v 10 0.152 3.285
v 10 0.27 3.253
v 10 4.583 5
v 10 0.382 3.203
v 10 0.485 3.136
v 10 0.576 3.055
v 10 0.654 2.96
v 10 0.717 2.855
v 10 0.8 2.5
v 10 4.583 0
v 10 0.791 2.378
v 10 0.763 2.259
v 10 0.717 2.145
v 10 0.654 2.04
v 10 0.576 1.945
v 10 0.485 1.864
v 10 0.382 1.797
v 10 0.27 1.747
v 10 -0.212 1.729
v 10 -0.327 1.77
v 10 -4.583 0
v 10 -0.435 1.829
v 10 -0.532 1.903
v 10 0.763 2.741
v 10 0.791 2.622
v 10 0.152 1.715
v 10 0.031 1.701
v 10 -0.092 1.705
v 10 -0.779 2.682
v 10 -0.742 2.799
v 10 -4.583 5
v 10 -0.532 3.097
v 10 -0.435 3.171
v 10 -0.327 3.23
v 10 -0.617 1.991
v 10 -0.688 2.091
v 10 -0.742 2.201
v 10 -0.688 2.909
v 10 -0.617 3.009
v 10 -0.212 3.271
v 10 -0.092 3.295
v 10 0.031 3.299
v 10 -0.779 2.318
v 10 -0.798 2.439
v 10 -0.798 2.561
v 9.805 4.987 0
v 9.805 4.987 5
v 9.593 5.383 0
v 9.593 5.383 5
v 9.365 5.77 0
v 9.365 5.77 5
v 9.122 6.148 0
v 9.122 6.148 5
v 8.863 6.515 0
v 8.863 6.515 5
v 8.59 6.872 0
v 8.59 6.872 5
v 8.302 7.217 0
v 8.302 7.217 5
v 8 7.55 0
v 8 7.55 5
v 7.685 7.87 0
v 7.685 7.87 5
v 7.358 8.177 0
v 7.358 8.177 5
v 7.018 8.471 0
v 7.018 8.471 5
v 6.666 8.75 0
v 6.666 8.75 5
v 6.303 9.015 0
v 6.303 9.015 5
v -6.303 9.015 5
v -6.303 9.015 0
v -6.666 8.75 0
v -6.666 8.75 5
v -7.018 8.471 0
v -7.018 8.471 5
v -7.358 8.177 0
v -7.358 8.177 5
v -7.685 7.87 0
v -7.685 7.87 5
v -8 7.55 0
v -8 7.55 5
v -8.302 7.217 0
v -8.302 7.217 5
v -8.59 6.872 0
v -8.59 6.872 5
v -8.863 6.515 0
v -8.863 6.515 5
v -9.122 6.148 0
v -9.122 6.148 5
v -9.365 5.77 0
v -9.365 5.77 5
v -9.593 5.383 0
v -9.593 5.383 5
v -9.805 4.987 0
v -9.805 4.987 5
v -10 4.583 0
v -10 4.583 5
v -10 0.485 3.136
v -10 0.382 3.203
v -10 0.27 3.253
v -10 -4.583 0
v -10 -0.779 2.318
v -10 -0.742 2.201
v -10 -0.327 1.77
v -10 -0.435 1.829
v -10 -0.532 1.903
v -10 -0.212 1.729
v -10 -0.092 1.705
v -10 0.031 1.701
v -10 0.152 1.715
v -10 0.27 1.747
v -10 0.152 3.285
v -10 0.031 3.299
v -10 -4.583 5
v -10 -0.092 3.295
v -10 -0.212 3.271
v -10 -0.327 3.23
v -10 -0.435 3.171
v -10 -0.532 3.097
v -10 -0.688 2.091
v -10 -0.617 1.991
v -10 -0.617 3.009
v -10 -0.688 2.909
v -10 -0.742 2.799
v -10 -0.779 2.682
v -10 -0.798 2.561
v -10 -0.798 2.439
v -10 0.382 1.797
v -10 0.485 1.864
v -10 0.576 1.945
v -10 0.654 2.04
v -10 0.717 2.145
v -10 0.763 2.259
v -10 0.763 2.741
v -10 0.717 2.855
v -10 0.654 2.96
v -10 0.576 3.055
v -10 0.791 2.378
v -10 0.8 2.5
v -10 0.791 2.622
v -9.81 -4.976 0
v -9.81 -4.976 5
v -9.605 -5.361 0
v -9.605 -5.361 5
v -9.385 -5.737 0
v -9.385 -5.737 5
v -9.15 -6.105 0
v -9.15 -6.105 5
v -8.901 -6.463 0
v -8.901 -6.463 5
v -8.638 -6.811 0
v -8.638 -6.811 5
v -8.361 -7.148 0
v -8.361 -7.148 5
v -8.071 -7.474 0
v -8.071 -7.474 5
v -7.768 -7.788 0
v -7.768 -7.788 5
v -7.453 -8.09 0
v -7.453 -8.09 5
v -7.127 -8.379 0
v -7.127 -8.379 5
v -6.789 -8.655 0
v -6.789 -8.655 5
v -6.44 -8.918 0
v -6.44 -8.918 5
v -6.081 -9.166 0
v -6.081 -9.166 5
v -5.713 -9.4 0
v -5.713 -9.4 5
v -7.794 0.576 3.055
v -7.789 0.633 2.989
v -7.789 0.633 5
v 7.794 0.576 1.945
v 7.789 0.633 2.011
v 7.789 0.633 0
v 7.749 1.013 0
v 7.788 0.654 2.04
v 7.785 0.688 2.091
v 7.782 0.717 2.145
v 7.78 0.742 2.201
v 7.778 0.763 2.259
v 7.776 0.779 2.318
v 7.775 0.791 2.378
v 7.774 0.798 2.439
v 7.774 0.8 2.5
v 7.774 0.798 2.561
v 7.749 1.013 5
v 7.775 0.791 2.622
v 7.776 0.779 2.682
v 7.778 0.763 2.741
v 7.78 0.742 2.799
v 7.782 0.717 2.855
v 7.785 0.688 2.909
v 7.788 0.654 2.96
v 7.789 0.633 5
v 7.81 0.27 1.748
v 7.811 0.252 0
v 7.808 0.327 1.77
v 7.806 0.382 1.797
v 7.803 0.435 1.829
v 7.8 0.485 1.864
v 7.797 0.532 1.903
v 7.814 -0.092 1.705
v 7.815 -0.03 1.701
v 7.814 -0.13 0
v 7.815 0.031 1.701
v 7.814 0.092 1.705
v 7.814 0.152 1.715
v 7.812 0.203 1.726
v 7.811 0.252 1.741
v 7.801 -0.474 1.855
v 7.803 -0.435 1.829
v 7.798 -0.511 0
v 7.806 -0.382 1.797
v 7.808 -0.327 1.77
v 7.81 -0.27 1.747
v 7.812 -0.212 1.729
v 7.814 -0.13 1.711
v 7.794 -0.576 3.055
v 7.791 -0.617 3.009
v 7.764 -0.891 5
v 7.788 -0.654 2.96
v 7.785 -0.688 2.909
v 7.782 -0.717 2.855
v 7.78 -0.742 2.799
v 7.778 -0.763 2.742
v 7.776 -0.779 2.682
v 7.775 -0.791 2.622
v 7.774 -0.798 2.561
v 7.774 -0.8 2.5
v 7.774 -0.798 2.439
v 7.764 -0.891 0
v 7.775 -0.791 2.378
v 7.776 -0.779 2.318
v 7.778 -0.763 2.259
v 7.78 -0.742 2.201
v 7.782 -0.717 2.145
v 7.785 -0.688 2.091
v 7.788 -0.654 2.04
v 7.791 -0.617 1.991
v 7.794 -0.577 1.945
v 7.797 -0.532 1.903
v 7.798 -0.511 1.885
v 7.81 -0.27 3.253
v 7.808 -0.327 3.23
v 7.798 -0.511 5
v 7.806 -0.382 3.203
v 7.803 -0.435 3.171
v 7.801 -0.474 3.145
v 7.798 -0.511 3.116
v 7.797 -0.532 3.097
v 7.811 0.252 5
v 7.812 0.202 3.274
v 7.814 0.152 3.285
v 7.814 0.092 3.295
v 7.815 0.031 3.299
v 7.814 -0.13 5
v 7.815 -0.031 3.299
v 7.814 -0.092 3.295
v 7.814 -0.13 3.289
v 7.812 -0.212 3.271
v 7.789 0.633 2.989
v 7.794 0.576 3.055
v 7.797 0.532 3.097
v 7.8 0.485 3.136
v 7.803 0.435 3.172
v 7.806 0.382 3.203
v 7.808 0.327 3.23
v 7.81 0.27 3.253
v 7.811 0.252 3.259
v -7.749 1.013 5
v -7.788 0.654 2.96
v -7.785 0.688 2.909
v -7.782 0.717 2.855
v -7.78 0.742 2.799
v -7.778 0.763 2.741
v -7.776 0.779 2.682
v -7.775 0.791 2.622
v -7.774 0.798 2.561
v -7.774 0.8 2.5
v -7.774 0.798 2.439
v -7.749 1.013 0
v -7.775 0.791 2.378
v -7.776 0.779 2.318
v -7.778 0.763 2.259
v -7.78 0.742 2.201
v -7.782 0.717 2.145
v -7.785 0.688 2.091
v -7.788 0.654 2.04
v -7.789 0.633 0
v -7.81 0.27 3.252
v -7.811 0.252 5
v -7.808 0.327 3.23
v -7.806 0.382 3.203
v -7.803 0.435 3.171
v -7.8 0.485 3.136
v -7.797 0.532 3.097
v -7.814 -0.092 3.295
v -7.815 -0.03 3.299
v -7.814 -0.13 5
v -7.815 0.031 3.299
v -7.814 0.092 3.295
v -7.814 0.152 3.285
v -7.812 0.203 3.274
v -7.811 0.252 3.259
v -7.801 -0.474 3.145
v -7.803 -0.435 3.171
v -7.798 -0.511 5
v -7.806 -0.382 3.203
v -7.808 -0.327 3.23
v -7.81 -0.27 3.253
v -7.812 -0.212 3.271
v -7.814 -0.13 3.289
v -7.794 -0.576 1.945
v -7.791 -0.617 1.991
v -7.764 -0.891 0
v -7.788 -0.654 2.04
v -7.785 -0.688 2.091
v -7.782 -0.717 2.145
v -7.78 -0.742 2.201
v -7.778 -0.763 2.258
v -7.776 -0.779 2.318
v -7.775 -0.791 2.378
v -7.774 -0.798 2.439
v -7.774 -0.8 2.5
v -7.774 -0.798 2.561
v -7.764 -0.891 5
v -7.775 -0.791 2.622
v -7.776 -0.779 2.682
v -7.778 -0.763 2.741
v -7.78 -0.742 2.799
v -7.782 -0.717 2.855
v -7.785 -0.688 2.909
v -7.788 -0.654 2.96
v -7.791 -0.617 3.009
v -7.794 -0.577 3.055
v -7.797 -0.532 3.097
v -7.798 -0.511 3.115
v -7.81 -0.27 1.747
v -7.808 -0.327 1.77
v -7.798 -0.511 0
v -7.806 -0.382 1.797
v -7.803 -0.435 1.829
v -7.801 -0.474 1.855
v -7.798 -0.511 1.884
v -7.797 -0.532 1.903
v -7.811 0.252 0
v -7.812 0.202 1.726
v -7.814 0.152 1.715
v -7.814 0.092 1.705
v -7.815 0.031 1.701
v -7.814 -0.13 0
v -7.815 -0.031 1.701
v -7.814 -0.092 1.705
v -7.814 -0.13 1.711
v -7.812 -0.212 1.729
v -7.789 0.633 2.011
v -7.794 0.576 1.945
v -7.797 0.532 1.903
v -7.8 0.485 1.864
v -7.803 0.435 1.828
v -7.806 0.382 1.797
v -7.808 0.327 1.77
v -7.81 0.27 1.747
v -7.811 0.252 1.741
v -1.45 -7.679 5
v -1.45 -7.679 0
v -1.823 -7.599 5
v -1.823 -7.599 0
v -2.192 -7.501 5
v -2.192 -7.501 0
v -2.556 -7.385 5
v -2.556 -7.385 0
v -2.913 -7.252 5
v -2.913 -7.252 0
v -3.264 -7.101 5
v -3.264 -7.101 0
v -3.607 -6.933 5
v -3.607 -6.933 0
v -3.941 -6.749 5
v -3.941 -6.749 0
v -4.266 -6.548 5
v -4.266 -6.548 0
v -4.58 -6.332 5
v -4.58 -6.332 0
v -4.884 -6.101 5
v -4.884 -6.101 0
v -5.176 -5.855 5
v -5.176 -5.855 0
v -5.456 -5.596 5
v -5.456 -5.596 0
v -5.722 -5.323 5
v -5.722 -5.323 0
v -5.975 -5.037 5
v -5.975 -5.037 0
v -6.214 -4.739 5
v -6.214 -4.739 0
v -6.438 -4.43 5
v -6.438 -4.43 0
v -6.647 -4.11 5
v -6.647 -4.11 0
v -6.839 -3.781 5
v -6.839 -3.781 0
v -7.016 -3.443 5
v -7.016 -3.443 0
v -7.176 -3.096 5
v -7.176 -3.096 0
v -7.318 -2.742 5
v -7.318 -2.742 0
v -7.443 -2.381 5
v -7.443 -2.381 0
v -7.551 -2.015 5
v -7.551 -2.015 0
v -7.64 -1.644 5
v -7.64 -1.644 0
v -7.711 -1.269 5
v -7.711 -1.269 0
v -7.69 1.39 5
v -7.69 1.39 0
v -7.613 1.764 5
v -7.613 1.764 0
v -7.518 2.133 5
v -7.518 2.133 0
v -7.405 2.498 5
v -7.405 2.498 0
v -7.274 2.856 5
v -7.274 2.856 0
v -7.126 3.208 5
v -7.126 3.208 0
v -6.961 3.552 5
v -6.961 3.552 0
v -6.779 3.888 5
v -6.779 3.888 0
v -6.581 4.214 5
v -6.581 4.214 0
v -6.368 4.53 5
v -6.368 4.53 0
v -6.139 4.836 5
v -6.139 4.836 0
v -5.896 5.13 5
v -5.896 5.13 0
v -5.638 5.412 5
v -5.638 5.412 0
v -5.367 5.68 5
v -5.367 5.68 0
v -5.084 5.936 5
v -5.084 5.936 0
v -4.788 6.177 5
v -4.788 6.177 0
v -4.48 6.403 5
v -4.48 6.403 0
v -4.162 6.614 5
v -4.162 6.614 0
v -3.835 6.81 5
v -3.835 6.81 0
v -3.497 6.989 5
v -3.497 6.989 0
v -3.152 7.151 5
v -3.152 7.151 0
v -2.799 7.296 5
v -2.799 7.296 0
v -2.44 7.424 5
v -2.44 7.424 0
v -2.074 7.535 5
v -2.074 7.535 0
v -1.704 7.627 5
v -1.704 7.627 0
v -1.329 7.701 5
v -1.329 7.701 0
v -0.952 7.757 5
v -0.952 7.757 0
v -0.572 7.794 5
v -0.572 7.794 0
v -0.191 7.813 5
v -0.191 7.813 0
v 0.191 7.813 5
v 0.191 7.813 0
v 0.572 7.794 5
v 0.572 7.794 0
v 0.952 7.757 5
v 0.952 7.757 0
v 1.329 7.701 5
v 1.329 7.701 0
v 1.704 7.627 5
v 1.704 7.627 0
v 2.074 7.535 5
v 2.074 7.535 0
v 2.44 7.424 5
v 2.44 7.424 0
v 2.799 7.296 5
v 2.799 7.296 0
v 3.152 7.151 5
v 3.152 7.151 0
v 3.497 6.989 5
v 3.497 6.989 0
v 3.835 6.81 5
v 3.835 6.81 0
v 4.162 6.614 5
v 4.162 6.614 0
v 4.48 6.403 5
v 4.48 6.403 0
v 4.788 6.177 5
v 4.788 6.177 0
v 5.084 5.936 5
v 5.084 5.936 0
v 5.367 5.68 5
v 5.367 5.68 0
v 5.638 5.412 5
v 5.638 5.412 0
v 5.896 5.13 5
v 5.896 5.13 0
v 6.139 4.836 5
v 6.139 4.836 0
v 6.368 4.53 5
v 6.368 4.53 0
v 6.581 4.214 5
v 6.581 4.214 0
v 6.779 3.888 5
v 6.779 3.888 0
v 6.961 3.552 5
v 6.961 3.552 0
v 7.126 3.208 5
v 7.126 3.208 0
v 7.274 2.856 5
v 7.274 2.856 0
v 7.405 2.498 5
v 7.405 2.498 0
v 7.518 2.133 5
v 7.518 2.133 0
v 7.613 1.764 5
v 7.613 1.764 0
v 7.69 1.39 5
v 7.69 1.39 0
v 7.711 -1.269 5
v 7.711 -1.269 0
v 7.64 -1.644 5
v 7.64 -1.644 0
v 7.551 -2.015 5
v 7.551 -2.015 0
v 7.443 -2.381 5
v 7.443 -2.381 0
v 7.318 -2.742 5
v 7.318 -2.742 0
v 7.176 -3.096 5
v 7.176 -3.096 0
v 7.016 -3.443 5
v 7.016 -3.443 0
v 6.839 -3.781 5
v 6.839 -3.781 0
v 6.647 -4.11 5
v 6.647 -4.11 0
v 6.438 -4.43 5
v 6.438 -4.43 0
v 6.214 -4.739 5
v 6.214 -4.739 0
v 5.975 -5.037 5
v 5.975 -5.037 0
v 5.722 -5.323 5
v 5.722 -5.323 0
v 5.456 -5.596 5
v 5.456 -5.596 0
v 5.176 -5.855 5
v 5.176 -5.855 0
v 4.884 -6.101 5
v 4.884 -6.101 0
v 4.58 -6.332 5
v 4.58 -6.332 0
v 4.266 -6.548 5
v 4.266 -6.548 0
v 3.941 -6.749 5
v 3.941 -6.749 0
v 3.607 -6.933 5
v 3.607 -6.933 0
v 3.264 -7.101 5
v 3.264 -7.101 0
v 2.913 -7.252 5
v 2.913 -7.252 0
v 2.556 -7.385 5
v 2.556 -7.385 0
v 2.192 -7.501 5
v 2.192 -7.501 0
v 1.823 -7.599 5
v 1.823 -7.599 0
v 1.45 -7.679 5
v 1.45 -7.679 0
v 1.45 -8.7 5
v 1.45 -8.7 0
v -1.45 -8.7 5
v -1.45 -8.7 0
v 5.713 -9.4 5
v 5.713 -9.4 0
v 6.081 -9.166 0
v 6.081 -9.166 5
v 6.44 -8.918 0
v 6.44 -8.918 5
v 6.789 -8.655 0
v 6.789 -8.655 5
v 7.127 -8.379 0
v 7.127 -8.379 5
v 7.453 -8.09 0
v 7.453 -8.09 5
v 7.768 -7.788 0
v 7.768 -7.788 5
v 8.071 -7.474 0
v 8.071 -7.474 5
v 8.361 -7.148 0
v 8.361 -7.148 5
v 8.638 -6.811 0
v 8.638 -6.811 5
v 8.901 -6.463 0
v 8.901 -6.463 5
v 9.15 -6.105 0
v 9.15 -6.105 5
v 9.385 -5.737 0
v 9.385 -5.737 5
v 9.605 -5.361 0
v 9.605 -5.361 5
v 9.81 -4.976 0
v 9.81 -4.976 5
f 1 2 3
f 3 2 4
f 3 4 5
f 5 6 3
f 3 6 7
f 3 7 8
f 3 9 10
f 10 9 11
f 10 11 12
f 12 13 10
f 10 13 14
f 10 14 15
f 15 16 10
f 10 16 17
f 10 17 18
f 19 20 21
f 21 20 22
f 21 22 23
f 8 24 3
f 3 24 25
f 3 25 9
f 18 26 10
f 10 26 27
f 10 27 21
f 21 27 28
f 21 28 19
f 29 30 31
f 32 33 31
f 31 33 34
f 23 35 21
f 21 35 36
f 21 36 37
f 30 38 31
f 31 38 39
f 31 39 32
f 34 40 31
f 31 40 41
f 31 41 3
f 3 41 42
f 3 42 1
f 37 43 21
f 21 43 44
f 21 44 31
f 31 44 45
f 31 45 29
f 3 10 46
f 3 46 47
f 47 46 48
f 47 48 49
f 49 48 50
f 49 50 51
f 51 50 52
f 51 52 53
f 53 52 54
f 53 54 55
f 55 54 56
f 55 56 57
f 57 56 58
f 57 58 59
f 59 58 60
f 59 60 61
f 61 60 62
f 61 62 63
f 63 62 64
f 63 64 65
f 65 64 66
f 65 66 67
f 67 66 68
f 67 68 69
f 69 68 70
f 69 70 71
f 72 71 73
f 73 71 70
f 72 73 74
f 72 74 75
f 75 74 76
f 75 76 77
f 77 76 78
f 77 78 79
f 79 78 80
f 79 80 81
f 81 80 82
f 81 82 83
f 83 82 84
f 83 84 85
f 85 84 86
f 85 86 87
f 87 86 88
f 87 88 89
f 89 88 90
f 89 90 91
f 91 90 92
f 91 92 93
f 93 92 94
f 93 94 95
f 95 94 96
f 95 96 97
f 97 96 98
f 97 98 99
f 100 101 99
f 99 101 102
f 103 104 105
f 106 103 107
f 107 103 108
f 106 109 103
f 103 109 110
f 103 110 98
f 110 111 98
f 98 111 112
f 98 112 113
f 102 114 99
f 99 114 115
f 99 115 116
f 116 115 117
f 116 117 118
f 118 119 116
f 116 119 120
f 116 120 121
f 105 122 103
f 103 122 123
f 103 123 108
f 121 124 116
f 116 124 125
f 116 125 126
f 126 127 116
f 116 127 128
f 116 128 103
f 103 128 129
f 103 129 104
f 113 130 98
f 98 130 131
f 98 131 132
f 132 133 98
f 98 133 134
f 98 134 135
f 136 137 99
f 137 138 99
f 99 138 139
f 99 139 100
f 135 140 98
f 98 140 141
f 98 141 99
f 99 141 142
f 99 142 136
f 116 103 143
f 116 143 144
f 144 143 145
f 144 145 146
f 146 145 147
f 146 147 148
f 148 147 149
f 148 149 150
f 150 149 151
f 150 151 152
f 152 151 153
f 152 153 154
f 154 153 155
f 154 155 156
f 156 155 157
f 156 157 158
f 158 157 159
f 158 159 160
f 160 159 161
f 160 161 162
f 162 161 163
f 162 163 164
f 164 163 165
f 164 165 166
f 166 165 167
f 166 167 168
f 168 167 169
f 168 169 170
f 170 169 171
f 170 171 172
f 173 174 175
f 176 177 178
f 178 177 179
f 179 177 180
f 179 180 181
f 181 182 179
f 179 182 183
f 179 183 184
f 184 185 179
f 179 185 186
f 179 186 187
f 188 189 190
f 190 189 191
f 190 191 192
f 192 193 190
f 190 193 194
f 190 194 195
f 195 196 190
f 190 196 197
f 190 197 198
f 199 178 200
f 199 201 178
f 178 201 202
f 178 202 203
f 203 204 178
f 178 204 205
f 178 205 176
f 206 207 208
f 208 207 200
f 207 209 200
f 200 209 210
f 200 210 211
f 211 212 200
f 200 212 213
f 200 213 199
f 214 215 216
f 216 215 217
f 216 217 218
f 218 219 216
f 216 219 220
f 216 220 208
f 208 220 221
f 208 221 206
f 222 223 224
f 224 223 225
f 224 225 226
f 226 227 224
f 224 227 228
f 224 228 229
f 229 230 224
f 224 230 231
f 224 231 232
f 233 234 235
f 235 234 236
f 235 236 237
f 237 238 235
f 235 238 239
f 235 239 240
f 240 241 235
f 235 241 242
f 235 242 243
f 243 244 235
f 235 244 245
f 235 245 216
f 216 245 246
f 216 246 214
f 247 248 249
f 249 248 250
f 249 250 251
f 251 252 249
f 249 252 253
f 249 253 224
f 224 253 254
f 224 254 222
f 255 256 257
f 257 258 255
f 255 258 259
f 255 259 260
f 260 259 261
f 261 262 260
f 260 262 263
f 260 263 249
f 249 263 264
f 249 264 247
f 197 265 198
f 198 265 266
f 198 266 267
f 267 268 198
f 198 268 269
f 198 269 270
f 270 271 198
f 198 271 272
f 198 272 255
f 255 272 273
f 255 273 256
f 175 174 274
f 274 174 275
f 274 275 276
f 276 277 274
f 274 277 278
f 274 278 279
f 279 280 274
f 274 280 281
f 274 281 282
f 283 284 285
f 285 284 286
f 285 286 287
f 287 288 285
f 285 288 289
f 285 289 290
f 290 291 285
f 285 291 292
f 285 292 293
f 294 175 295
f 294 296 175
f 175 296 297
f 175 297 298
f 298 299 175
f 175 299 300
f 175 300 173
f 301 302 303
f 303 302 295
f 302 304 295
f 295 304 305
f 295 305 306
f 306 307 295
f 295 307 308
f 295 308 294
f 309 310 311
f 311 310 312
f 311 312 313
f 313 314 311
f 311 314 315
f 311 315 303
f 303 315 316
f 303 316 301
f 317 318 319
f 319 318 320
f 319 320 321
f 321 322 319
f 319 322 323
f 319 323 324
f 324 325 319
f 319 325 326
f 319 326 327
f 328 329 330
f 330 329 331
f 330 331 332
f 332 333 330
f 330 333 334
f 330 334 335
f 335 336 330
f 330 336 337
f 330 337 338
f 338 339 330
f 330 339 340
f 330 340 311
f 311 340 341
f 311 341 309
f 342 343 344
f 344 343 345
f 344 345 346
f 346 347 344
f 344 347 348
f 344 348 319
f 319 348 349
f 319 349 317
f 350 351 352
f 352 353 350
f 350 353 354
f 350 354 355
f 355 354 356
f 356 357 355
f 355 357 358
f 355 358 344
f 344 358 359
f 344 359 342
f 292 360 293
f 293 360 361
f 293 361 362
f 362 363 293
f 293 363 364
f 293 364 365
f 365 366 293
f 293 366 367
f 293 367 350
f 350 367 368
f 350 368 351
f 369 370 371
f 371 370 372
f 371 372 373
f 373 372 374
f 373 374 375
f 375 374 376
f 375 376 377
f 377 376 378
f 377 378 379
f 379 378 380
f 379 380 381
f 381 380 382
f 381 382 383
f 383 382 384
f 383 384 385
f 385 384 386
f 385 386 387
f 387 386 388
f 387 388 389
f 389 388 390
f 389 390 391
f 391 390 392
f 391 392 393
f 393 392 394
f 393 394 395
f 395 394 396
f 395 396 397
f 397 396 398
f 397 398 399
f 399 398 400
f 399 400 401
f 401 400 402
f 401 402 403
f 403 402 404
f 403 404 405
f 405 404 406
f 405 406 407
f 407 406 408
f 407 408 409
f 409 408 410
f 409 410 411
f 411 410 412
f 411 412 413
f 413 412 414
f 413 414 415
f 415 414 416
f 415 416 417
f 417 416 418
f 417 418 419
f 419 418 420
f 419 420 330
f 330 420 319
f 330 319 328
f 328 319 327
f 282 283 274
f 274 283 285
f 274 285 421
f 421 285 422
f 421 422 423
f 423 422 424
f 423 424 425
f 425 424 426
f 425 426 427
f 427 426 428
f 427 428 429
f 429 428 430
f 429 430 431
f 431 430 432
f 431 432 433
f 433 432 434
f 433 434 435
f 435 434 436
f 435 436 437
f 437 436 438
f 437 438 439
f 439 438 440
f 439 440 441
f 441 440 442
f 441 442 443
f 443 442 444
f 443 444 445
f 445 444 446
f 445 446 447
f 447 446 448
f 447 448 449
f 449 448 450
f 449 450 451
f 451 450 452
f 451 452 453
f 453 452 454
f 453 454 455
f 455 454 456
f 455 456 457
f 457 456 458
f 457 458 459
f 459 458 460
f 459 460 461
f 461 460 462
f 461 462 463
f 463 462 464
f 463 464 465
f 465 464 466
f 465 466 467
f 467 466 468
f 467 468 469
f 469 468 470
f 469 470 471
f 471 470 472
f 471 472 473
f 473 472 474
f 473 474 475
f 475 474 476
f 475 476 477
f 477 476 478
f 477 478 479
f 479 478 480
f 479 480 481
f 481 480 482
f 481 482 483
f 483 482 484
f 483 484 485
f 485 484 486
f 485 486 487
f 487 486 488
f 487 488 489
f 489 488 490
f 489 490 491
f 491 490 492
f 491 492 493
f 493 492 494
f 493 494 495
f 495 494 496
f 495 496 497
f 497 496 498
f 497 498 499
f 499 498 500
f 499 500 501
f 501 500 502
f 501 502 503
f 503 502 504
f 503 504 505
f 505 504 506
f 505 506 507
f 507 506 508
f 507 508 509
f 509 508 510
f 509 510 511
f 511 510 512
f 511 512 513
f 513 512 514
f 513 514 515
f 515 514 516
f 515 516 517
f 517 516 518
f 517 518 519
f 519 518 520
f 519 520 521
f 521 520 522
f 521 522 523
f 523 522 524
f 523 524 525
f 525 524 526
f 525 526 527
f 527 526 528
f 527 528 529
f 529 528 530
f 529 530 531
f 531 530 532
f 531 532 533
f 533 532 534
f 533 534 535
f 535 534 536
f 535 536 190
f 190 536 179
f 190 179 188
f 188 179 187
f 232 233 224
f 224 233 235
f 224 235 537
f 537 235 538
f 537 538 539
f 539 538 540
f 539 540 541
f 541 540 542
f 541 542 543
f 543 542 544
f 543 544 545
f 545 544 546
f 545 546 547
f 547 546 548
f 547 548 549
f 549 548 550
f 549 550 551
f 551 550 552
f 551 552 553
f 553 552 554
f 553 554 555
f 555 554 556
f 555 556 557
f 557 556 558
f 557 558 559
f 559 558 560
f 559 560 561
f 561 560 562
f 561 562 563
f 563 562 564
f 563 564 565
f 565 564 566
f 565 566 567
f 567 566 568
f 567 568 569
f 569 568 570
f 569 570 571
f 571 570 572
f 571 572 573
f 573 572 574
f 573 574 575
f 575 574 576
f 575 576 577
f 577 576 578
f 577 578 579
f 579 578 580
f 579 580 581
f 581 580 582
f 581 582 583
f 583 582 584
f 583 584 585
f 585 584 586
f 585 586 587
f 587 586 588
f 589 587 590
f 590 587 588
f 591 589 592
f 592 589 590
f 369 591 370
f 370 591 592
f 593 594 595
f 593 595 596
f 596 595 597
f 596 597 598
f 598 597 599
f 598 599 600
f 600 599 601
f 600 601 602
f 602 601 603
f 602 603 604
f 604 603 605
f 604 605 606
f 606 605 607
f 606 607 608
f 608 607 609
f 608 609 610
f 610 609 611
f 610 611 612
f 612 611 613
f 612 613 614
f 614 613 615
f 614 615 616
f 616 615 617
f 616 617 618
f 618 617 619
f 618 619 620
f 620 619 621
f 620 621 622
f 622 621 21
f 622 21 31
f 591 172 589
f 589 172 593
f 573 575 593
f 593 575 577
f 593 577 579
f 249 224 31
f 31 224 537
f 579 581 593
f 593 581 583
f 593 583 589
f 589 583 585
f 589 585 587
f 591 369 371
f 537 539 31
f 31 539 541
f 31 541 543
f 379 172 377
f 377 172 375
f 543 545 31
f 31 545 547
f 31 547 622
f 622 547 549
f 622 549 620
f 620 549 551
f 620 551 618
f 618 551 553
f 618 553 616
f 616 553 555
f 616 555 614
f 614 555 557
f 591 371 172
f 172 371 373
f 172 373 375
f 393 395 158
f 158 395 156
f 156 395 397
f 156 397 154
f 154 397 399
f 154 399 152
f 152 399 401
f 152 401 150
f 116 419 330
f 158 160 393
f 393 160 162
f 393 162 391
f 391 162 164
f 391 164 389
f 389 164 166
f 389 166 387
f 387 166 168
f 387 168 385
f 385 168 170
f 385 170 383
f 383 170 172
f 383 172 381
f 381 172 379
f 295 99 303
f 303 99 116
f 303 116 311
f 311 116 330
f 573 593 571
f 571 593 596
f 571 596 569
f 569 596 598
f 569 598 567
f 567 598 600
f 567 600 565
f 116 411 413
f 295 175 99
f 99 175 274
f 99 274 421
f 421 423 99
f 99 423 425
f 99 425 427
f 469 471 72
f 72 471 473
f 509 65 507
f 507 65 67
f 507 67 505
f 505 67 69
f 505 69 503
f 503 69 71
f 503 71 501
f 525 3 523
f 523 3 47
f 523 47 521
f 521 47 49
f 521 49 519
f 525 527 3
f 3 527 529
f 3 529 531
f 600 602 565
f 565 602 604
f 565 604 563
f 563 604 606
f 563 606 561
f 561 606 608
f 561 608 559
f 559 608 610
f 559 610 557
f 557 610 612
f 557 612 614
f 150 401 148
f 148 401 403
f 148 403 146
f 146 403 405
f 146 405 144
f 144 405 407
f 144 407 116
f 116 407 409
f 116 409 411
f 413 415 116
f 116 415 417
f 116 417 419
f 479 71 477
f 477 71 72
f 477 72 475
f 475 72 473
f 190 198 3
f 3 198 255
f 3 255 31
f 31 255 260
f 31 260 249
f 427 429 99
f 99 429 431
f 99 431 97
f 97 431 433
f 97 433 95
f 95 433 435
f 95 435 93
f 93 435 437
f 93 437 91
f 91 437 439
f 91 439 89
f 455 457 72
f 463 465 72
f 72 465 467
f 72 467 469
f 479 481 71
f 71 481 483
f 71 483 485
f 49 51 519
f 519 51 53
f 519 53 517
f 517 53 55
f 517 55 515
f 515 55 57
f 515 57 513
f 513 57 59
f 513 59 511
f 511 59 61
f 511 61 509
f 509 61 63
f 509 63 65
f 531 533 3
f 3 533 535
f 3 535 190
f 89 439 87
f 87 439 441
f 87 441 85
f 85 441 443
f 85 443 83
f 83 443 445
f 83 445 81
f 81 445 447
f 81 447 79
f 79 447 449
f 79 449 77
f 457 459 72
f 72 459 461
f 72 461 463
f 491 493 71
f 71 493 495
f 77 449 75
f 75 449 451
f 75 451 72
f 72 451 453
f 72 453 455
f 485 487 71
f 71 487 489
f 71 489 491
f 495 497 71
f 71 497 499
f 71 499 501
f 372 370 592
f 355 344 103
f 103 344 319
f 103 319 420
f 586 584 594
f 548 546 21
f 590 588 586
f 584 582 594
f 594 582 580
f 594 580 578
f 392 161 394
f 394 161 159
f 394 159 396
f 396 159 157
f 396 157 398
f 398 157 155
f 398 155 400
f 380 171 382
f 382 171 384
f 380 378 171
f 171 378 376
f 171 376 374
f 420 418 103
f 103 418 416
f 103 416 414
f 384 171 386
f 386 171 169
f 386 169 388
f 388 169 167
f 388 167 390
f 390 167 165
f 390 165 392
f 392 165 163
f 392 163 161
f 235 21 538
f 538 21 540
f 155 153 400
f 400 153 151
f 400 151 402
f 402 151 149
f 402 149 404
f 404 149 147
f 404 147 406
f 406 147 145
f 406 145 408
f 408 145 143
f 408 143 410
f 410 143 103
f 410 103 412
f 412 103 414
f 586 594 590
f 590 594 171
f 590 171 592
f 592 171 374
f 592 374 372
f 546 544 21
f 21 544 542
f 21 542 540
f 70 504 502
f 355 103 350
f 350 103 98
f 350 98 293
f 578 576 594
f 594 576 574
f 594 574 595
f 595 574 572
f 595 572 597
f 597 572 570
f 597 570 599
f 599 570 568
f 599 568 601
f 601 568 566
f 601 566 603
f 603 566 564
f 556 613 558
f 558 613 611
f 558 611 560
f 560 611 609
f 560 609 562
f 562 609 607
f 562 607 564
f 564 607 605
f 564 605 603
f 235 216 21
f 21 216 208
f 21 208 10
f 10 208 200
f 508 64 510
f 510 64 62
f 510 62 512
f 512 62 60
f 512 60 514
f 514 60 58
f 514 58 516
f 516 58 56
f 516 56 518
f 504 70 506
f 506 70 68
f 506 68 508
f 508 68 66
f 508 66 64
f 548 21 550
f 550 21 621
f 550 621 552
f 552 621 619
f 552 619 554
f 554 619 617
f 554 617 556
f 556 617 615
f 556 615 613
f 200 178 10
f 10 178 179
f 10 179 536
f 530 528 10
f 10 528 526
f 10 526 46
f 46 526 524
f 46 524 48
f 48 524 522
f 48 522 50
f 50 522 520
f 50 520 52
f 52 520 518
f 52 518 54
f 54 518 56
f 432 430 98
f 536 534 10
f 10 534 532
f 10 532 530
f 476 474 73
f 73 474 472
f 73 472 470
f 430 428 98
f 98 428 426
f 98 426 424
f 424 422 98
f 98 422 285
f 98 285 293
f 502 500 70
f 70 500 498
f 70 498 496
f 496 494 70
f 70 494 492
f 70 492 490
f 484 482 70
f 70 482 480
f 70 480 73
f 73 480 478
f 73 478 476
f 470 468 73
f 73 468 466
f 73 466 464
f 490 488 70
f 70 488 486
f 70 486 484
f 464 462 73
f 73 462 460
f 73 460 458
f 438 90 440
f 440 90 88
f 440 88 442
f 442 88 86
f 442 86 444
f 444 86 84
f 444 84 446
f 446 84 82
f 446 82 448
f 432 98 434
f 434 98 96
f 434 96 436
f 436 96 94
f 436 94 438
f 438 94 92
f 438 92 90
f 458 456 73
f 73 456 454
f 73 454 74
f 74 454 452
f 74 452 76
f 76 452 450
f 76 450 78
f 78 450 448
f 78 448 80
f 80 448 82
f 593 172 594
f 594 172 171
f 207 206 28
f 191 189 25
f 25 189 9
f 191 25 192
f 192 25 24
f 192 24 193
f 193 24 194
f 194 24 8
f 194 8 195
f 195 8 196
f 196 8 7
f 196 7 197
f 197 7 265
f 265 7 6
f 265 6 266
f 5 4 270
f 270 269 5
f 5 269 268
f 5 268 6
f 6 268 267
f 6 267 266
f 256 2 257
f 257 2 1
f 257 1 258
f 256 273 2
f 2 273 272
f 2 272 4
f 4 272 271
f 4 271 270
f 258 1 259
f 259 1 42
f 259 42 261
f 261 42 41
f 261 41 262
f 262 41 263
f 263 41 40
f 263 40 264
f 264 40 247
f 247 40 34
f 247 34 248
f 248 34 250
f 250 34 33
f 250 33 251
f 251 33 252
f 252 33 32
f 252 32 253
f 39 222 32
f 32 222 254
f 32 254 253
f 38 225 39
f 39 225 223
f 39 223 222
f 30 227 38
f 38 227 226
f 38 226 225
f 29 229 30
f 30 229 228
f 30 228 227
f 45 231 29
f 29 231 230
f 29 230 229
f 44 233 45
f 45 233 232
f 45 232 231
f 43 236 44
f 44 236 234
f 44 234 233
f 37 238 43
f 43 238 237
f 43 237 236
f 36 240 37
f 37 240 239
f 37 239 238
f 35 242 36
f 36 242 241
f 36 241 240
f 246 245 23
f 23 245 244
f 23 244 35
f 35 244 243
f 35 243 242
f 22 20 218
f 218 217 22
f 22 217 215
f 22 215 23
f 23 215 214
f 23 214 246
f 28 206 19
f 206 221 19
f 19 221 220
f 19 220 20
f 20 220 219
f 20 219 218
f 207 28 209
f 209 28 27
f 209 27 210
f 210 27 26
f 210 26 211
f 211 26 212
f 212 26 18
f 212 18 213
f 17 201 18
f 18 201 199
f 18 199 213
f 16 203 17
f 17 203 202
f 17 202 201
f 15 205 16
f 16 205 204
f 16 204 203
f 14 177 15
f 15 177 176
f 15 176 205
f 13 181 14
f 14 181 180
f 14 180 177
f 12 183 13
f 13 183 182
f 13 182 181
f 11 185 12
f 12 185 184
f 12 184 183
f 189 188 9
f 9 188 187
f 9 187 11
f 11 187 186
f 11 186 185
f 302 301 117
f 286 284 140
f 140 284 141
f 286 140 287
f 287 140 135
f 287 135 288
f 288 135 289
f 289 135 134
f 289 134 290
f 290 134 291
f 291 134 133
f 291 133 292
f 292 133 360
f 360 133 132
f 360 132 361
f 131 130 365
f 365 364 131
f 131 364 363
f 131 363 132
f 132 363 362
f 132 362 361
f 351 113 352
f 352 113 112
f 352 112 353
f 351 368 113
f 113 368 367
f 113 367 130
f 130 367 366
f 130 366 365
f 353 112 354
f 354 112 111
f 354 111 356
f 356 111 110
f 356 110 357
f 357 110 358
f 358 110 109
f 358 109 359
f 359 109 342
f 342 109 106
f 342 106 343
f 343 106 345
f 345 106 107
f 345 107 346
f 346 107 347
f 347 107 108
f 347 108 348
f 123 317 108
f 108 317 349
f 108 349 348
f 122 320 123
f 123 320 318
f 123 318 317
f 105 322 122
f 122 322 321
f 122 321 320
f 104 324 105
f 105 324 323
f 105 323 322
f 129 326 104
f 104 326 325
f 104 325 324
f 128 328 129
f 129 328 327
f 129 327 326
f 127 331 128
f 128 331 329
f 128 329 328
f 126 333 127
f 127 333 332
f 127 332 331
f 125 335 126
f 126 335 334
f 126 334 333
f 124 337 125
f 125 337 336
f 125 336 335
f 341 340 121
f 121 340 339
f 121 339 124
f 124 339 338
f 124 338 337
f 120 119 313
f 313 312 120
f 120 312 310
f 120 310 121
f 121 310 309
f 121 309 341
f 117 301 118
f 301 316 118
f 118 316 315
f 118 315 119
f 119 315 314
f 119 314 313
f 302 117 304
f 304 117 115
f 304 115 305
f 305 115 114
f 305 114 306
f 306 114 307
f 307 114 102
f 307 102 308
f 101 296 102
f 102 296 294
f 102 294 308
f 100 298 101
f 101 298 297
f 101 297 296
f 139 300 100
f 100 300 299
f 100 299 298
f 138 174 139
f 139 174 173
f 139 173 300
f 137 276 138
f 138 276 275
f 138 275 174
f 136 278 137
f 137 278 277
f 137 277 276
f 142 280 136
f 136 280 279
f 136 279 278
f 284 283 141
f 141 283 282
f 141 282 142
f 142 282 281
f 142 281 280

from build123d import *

# Parameters (mm, degrees)
BOSS_EXTRUDE1_DEPTH     = 5
CUT_EXTRUDE1_DEPTH      = 15.933519344
CUT_EXTRUDE1_DEPTH_BACK = 15.933519344
SKETCH2_W               = 5
SKETCH2_H               = 0.5
SKETCH3_R               = 0.8
CUT_EXTRUDE2_DEPTH      = 23.657449106


with BuildPart() as part:
    # Sketch1 → Boss-Extrude1 (new body)
    with BuildSketch(Plane.XY):
        with BuildLine():
            Line((6.303155956, 9.015), (-6.303155956, 9.015))
            ThreePointArc((-6.303155956, 9.015), (-8.447474169, 7.045578767), (-10, 4.582575695))
            Line((-10, 4.582575695), (-10, -4.582575695))
            ThreePointArc((-10, -4.582575695), (-7.860673921, -7.694790803), (-4.794788838, -9.9))
            Line((-4.794788838, -9.9), (4.794788838, -9.9))
            ThreePointArc((4.794788838, -9.9), (7.860673921, -7.694790803), (10, -4.582575695))
            Line((10, -4.582575695), (10, 4.582575695))
            ThreePointArc((10, 4.582575695), (8.447474169, 7.045578767), (6.303155956, 9.015))
        make_face()
        with BuildLine():
            Line((-1.45, -8.7), (-1.45, -7.679304982))
            ThreePointArc((-1.45, -7.679304982), (-4.987107127, 6.016891847), (7.815, 0))
            ThreePointArc((7.815, 0), (6.016891847, -4.987107127), (1.45, -7.679304982))
            Line((1.45, -7.679304982), (1.45, -8.7))
            Line((1.45, -8.7), (-1.45, -8.7))
        make_face(mode=Mode.SUBTRACT)
    extrude(amount=BOSS_EXTRUDE1_DEPTH)

    # Sketch2 → Cut-Extrude1 (cut, two sides: drawn at the far end of the back side and taken through both)
    with BuildSketch(Plane(origin=(0, 0, 0), x_dir=(0, 0, -1), z_dir=(1, 0, 0)).offset(-CUT_EXTRUDE1_DEPTH_BACK)):
        with Locations((-2.5, -9.65)):
            Rectangle(SKETCH2_W, SKETCH2_H)
    extrude(amount=CUT_EXTRUDE1_DEPTH + CUT_EXTRUDE1_DEPTH_BACK, mode=Mode.SUBTRACT)

    # Sketch3 → Cut-Extrude2 (cut, through all)
    with BuildSketch(Plane(origin=(10, 0, 0), x_dir=(0, 0, -1), z_dir=(1, 0, 0))):
        with Locations(Location((-2.5, 0, 0), (0, 0, 90))):
            Circle(SKETCH3_R)
    extrude(amount=-CUT_EXTRUDE2_DEPTH, mode=Mode.SUBTRACT)


solid = part.part
